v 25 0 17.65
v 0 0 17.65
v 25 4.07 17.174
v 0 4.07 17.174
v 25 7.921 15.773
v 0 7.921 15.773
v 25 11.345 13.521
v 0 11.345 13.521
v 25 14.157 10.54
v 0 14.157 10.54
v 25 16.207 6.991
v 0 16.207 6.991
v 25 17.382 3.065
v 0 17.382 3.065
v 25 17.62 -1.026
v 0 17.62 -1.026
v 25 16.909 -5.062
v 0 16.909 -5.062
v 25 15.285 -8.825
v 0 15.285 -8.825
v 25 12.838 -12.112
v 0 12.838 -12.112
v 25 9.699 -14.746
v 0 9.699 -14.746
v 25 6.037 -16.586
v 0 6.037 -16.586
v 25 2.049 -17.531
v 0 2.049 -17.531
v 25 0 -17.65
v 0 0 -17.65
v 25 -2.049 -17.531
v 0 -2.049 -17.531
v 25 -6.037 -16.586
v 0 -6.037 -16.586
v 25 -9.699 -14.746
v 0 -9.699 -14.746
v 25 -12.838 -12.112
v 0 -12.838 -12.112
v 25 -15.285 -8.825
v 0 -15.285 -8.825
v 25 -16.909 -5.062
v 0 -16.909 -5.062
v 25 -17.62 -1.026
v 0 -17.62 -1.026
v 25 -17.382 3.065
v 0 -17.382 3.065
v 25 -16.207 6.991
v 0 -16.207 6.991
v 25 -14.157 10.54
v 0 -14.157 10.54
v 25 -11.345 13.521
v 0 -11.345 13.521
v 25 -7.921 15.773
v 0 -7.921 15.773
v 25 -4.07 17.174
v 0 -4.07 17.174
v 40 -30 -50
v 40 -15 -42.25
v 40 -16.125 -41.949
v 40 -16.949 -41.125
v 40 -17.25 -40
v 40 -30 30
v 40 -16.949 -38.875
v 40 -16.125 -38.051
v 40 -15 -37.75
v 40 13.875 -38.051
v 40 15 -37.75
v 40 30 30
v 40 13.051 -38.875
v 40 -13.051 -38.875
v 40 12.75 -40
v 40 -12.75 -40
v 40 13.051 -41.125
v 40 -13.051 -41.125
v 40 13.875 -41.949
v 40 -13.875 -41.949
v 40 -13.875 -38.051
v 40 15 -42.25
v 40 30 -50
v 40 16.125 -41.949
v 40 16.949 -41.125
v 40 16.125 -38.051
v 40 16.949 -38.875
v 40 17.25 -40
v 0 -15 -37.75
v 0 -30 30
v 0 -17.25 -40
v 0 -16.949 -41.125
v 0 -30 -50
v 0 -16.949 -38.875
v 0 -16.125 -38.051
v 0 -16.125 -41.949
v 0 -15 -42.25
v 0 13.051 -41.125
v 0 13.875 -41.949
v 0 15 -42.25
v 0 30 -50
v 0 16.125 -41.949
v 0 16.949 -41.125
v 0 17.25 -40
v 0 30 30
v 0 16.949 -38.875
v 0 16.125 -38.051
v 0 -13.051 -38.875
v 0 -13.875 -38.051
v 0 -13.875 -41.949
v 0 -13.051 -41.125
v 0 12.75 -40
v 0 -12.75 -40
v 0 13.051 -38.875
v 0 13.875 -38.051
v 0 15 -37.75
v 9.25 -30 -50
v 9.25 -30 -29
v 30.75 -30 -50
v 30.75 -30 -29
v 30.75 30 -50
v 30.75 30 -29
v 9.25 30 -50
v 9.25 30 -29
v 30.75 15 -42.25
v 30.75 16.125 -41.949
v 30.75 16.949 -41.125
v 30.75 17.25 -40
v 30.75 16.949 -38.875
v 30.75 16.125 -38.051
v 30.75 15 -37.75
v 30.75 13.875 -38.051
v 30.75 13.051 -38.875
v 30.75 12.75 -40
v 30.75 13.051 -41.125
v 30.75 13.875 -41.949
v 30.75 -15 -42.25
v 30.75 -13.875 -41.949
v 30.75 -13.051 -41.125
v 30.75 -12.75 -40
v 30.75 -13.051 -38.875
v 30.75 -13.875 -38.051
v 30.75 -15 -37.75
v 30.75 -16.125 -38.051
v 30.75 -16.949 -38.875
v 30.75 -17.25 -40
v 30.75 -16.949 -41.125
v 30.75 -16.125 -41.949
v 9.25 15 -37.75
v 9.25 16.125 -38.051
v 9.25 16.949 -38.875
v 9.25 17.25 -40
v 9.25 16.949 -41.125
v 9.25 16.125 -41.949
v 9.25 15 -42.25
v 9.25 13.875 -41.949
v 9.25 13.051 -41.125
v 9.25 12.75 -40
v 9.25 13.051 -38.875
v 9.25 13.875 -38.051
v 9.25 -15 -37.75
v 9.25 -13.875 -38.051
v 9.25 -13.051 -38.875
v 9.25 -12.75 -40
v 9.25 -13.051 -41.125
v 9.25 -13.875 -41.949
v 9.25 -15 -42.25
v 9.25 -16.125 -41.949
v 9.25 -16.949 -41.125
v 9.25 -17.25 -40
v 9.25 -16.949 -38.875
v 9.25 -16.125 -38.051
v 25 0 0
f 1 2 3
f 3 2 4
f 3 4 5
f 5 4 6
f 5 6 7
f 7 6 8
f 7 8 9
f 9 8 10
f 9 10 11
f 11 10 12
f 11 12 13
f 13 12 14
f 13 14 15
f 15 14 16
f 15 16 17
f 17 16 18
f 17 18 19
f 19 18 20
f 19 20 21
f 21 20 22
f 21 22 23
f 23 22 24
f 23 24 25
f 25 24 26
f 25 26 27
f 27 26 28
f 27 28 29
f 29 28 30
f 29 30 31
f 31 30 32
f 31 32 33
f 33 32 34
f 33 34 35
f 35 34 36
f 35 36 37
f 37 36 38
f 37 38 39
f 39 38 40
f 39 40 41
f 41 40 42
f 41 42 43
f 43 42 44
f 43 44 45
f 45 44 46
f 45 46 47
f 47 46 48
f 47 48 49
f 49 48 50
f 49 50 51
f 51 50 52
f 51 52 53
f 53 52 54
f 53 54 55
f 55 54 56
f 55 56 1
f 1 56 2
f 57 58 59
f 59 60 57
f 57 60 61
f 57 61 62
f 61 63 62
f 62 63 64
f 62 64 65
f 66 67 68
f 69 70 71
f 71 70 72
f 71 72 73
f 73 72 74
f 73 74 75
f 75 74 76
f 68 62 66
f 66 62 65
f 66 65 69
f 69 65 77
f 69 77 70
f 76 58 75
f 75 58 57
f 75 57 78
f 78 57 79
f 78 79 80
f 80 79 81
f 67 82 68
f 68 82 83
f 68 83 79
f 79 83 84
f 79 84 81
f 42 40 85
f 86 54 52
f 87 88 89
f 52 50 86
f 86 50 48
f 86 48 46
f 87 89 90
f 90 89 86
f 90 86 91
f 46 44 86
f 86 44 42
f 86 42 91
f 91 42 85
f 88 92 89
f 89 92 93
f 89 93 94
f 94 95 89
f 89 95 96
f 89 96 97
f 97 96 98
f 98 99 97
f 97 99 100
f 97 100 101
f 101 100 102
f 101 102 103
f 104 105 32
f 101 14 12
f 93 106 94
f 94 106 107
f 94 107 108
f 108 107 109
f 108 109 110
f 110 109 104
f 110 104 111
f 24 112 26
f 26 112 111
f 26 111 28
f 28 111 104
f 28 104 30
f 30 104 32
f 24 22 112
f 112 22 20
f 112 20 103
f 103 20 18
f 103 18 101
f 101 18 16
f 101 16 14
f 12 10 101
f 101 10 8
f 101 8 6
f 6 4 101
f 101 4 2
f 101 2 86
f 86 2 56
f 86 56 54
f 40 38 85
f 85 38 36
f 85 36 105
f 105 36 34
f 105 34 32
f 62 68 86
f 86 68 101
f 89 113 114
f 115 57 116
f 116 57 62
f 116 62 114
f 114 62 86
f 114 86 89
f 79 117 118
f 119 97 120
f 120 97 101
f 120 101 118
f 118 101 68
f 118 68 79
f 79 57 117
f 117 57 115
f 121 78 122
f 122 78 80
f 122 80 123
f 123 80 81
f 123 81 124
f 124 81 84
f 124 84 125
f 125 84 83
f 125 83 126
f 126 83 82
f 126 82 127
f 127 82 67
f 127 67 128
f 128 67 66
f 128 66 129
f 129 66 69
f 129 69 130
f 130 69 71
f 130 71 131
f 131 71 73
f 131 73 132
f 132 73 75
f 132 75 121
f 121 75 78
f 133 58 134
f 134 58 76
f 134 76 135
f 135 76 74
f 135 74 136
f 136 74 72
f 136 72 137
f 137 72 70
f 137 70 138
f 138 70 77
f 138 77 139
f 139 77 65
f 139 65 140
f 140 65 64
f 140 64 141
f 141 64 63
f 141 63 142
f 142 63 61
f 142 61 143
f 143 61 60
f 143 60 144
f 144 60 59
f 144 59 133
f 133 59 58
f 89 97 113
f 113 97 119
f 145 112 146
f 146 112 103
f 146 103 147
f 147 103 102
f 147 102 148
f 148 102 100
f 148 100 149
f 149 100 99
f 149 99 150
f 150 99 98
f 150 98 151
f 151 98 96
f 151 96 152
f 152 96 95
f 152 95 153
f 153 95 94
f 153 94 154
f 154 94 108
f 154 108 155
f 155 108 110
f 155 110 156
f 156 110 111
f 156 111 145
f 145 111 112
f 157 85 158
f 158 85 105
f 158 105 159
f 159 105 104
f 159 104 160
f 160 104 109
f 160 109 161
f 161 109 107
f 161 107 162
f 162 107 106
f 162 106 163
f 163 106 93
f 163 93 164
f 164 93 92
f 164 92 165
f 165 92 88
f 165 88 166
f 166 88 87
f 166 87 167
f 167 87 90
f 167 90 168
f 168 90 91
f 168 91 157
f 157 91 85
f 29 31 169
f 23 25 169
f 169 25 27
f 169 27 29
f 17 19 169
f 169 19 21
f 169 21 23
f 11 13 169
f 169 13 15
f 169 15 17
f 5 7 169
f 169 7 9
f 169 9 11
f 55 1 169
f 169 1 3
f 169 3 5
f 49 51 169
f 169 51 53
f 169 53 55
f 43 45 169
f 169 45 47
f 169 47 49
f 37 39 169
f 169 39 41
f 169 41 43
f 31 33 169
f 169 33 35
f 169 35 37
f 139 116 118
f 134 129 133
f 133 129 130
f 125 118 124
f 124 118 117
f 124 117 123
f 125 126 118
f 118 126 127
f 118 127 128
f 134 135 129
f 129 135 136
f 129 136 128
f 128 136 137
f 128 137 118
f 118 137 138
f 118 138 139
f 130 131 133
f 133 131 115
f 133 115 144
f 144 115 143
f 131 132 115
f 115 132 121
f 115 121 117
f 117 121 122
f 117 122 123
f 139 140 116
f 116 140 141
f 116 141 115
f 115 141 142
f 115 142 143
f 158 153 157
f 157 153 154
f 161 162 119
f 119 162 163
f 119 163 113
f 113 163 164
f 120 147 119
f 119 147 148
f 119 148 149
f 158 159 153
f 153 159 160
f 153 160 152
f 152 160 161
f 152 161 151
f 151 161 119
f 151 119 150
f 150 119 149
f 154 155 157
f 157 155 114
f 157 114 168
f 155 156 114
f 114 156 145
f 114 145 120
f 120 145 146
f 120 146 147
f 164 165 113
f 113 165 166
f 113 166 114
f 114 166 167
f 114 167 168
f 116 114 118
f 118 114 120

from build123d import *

# Parameters (mm, degrees)
SKETCH1_W           = 60
SKETCH1_H           = 60
SKETCH1_R           = 17.65
BOSS_EXTRUDE1_DEPTH = 40
SKETCH4_W           = 10
SKETCH4_H           = 60
BOSS_EXTRUDE2_DEPTH = 20
SKETCH5_R           = 2.25
CUT_EXTRUDE1_DEPTH  = 71.710678119
BOSS_EXTRUDE3_START = -15
SKETCH6_R           = 17.65
BOSS_EXTRUDE3_DEPTH = 15
SKETCH7_W           = 21.5
SKETCH7_H           = 21
CUT_EXTRUDE2_DEPTH  = 88.749643874


with BuildPart() as part:
    # Sketch1 → Boss-Extrude1 (new body)
    with BuildSketch(Plane(origin=(0, 0, 0), x_dir=(0, 0, -1), z_dir=(1, 0, 0))):
        Rectangle(SKETCH1_W, SKETCH1_H)
        Circle(SKETCH1_R, mode=Mode.SUBTRACT)
    extrude(amount=BOSS_EXTRUDE1_DEPTH)

    # Sketch4 → Boss-Extrude2 (add)
    with BuildSketch(Plane(origin=(0, 0, -30), x_dir=(-1, 0, 0), z_dir=(0, 0, -1))):
        with Locations((-35, 0)):
            Rectangle(SKETCH4_W, SKETCH4_H)
    boss_extrude2 = extrude(amount=BOSS_EXTRUDE2_DEPTH)

    # Sketch5 → Cut-Extrude1 (cut, through all)
    with BuildSketch(Plane(origin=(40, 0, 0), x_dir=(0, 0, -1), z_dir=(1, 0, 0))):
        with Locations((40, -15)):
            Circle(SKETCH5_R)
        with Locations(Location((40, 15, 0), (0, 0, 90))):
            Circle(SKETCH5_R)
    cut_extrude1 = extrude(amount=-CUT_EXTRUDE1_DEPTH, mode=Mode.SUBTRACT)

    # Mirror1: Boss-Extrude2, Cut-Extrude1 across plane
    add(boss_extrude2.mirror(Plane(origin=(20, 0, 0), x_dir=(0, 0, 1), z_dir=(1, 0, 0))))
    add(cut_extrude1.mirror(Plane(origin=(20, 0, 0), x_dir=(0, 0, 1), z_dir=(1, 0, 0))), mode=Mode.SUBTRACT)

    # Sketch6 → Boss-Extrude3 (add)
    with BuildSketch(Plane(origin=(40, 0, 0), x_dir=(0, 0, -1), z_dir=(1, 0, 0)).offset(BOSS_EXTRUDE3_START)):
        Circle(SKETCH6_R)
    extrude(amount=BOSS_EXTRUDE3_DEPTH)

    # Sketch7 → Cut-Extrude2 (cut, through all)
    with BuildSketch(Plane(origin=(0, 30, 0), x_dir=(1, 0, 0), z_dir=(0, 1, 0))):
        with Locations((20, 39.5)):
            Rectangle(SKETCH7_W, SKETCH7_H)
    extrude(amount=-CUT_EXTRUDE2_DEPTH, mode=Mode.SUBTRACT)


solid = part.part
